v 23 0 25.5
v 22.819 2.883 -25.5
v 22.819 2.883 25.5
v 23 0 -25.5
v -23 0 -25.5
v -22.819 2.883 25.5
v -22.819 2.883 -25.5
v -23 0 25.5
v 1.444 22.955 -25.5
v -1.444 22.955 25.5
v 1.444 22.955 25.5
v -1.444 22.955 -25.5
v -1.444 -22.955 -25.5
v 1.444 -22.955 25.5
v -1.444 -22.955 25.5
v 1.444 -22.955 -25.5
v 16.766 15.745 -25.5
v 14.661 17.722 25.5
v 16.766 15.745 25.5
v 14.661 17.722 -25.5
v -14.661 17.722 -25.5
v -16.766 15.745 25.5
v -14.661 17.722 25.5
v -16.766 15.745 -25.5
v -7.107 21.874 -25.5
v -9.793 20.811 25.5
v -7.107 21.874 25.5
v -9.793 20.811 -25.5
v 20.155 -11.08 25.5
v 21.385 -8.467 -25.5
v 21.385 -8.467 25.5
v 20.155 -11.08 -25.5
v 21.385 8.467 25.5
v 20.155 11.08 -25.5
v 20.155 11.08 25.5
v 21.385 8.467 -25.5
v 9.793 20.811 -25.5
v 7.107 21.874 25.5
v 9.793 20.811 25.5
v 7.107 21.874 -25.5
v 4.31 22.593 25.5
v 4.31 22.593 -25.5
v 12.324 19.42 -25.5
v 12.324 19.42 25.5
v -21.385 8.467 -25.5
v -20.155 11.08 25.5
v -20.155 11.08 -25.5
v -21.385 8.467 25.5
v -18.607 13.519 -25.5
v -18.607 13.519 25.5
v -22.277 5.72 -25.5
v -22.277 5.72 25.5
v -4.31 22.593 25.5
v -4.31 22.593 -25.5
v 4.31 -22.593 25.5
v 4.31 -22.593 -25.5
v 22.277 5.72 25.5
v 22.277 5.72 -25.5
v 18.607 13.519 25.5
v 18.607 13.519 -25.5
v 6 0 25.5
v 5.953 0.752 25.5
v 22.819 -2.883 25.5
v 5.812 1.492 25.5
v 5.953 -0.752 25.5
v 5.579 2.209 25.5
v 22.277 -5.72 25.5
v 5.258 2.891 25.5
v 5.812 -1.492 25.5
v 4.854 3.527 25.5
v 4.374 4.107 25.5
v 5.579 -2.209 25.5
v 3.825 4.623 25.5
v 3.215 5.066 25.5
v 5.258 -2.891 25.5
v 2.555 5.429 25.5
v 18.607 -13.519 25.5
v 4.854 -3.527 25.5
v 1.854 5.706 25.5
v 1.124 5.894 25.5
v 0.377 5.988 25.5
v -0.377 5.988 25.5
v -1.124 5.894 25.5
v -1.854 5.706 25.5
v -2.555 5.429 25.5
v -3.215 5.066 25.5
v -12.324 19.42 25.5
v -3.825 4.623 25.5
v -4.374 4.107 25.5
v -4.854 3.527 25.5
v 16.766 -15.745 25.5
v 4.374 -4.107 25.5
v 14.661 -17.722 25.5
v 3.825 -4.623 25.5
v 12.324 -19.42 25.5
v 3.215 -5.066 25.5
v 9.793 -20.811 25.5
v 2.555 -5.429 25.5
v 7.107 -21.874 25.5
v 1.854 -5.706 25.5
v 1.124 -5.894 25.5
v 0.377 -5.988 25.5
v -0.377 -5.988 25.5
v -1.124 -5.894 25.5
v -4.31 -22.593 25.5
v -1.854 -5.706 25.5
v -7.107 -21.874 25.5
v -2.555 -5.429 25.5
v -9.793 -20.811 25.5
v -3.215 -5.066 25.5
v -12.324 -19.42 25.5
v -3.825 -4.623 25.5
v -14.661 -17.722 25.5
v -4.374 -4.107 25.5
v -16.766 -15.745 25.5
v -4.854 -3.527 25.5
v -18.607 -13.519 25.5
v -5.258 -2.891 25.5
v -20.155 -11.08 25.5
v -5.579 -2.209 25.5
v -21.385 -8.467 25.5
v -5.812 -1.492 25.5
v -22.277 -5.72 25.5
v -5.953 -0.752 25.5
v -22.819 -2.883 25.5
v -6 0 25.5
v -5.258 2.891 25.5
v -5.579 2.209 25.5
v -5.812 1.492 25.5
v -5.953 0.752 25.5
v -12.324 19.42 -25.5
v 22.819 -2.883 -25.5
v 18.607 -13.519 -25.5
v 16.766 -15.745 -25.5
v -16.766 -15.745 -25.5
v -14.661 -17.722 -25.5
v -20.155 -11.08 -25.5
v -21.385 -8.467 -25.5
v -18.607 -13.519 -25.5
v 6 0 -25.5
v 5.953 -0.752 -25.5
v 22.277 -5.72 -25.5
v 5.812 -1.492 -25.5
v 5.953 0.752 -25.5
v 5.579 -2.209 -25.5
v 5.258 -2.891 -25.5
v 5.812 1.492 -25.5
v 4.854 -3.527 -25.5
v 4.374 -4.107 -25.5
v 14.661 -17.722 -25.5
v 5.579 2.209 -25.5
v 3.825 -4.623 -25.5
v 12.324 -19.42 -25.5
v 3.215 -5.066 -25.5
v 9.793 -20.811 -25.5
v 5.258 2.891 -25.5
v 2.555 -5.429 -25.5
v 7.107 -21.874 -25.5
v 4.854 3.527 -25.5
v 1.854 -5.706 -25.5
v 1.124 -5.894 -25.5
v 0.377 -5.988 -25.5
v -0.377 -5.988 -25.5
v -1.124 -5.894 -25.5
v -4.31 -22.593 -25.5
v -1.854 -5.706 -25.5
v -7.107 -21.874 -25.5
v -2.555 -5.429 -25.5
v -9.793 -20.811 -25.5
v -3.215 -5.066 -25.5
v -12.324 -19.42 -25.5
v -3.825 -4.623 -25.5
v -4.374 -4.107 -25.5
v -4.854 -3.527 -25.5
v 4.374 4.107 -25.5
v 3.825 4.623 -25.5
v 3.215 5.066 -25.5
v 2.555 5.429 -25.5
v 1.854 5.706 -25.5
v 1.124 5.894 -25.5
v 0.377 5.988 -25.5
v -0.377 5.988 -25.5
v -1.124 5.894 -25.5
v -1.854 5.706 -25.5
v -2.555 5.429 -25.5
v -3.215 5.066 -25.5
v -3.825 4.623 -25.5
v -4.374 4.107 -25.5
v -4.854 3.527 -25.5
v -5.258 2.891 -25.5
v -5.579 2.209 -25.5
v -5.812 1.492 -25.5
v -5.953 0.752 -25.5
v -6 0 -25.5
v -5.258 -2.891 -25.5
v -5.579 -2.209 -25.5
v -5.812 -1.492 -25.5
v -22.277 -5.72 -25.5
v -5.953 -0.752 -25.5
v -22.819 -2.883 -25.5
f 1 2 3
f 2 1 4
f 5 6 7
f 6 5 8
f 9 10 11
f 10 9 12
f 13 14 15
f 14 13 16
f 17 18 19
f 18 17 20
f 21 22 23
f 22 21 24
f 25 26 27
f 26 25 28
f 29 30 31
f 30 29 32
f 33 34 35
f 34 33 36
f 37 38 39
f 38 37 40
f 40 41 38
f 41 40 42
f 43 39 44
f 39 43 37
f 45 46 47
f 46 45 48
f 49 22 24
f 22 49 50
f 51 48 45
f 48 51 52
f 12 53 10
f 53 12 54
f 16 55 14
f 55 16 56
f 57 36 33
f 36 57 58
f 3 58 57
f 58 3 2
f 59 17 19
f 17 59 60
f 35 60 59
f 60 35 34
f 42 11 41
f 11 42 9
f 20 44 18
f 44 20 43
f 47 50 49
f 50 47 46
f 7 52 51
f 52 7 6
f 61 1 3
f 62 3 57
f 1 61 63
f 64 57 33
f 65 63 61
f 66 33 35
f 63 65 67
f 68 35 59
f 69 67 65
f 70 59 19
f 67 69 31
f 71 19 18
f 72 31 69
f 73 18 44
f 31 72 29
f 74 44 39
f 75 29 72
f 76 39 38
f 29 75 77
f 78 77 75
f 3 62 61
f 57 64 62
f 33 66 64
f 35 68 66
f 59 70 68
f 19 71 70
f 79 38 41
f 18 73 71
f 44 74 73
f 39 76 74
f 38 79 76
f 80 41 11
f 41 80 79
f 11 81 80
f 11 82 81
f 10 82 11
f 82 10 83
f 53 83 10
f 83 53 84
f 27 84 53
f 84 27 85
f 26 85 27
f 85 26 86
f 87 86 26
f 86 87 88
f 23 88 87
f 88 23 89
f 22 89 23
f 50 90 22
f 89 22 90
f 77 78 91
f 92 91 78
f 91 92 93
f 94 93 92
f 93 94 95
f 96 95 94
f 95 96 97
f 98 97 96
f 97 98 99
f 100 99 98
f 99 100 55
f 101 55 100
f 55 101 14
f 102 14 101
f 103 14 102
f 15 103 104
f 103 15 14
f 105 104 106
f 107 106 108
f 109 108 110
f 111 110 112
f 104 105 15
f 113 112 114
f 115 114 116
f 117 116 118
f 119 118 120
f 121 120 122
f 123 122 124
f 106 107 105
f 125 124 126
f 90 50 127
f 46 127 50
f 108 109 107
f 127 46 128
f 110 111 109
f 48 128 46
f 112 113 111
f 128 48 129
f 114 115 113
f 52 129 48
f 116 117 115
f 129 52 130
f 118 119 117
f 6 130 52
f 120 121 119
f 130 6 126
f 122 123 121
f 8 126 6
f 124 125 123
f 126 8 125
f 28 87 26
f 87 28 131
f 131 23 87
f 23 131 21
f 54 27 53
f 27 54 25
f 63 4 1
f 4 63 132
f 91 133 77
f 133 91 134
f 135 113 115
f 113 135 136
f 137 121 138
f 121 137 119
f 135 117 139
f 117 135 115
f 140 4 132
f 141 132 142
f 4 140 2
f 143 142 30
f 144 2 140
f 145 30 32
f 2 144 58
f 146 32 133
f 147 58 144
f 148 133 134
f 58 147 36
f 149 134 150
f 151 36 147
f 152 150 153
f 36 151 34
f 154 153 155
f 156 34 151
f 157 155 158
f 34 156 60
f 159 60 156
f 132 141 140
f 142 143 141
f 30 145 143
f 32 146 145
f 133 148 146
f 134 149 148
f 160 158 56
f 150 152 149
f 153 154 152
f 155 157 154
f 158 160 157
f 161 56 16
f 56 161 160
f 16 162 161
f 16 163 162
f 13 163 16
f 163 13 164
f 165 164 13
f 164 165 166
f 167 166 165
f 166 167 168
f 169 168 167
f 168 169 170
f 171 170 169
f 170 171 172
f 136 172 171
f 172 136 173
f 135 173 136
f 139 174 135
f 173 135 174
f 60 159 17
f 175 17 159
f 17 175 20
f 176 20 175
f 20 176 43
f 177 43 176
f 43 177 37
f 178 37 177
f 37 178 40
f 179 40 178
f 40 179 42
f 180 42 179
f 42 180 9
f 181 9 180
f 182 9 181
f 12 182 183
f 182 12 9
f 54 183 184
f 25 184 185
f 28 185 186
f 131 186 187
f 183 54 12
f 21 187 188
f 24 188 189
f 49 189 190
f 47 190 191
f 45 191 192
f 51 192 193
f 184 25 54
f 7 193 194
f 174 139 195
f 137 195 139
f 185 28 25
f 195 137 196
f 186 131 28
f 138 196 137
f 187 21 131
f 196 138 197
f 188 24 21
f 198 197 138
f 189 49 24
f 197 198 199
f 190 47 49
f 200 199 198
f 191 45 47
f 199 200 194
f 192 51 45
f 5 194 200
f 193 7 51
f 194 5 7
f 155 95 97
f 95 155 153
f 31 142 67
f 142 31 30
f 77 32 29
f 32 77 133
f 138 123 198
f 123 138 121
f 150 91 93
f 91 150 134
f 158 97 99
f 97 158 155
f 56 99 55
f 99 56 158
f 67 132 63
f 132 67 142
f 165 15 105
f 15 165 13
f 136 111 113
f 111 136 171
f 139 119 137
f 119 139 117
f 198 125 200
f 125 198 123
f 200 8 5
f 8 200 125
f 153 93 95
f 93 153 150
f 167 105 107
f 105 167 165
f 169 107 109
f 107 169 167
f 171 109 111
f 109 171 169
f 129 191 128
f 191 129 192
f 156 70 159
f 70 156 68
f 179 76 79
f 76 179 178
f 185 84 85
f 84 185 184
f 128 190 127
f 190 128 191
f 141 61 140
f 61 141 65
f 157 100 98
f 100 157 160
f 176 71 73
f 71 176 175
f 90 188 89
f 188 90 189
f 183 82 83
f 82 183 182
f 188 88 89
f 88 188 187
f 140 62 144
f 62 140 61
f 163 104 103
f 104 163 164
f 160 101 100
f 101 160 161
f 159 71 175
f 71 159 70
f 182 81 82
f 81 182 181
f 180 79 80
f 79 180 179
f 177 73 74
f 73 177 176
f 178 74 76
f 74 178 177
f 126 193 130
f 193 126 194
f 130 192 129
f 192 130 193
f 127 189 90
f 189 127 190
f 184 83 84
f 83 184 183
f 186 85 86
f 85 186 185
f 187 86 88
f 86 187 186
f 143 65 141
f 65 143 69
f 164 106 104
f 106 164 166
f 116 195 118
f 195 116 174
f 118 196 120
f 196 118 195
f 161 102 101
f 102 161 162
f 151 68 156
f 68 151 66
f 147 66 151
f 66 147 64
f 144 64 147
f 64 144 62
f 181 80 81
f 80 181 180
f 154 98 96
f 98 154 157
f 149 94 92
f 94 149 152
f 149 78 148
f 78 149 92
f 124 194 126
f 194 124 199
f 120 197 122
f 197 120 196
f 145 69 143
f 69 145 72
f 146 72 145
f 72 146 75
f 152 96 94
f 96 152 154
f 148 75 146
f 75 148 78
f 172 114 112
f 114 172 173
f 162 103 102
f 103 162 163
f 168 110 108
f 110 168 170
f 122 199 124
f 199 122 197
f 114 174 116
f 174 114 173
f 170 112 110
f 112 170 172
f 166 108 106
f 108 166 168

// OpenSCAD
$fn = 50;


difference() {
	union() {
		translate(v = [0, 0, -25.5000000000]) {
			cylinder(h = 51, r = 23.0000000000);
		}
	}
	union() {
		translate(v = [0, 0, -100.0000000000]) {
			cylinder(h = 200, r = 6);
		}
	}
}
